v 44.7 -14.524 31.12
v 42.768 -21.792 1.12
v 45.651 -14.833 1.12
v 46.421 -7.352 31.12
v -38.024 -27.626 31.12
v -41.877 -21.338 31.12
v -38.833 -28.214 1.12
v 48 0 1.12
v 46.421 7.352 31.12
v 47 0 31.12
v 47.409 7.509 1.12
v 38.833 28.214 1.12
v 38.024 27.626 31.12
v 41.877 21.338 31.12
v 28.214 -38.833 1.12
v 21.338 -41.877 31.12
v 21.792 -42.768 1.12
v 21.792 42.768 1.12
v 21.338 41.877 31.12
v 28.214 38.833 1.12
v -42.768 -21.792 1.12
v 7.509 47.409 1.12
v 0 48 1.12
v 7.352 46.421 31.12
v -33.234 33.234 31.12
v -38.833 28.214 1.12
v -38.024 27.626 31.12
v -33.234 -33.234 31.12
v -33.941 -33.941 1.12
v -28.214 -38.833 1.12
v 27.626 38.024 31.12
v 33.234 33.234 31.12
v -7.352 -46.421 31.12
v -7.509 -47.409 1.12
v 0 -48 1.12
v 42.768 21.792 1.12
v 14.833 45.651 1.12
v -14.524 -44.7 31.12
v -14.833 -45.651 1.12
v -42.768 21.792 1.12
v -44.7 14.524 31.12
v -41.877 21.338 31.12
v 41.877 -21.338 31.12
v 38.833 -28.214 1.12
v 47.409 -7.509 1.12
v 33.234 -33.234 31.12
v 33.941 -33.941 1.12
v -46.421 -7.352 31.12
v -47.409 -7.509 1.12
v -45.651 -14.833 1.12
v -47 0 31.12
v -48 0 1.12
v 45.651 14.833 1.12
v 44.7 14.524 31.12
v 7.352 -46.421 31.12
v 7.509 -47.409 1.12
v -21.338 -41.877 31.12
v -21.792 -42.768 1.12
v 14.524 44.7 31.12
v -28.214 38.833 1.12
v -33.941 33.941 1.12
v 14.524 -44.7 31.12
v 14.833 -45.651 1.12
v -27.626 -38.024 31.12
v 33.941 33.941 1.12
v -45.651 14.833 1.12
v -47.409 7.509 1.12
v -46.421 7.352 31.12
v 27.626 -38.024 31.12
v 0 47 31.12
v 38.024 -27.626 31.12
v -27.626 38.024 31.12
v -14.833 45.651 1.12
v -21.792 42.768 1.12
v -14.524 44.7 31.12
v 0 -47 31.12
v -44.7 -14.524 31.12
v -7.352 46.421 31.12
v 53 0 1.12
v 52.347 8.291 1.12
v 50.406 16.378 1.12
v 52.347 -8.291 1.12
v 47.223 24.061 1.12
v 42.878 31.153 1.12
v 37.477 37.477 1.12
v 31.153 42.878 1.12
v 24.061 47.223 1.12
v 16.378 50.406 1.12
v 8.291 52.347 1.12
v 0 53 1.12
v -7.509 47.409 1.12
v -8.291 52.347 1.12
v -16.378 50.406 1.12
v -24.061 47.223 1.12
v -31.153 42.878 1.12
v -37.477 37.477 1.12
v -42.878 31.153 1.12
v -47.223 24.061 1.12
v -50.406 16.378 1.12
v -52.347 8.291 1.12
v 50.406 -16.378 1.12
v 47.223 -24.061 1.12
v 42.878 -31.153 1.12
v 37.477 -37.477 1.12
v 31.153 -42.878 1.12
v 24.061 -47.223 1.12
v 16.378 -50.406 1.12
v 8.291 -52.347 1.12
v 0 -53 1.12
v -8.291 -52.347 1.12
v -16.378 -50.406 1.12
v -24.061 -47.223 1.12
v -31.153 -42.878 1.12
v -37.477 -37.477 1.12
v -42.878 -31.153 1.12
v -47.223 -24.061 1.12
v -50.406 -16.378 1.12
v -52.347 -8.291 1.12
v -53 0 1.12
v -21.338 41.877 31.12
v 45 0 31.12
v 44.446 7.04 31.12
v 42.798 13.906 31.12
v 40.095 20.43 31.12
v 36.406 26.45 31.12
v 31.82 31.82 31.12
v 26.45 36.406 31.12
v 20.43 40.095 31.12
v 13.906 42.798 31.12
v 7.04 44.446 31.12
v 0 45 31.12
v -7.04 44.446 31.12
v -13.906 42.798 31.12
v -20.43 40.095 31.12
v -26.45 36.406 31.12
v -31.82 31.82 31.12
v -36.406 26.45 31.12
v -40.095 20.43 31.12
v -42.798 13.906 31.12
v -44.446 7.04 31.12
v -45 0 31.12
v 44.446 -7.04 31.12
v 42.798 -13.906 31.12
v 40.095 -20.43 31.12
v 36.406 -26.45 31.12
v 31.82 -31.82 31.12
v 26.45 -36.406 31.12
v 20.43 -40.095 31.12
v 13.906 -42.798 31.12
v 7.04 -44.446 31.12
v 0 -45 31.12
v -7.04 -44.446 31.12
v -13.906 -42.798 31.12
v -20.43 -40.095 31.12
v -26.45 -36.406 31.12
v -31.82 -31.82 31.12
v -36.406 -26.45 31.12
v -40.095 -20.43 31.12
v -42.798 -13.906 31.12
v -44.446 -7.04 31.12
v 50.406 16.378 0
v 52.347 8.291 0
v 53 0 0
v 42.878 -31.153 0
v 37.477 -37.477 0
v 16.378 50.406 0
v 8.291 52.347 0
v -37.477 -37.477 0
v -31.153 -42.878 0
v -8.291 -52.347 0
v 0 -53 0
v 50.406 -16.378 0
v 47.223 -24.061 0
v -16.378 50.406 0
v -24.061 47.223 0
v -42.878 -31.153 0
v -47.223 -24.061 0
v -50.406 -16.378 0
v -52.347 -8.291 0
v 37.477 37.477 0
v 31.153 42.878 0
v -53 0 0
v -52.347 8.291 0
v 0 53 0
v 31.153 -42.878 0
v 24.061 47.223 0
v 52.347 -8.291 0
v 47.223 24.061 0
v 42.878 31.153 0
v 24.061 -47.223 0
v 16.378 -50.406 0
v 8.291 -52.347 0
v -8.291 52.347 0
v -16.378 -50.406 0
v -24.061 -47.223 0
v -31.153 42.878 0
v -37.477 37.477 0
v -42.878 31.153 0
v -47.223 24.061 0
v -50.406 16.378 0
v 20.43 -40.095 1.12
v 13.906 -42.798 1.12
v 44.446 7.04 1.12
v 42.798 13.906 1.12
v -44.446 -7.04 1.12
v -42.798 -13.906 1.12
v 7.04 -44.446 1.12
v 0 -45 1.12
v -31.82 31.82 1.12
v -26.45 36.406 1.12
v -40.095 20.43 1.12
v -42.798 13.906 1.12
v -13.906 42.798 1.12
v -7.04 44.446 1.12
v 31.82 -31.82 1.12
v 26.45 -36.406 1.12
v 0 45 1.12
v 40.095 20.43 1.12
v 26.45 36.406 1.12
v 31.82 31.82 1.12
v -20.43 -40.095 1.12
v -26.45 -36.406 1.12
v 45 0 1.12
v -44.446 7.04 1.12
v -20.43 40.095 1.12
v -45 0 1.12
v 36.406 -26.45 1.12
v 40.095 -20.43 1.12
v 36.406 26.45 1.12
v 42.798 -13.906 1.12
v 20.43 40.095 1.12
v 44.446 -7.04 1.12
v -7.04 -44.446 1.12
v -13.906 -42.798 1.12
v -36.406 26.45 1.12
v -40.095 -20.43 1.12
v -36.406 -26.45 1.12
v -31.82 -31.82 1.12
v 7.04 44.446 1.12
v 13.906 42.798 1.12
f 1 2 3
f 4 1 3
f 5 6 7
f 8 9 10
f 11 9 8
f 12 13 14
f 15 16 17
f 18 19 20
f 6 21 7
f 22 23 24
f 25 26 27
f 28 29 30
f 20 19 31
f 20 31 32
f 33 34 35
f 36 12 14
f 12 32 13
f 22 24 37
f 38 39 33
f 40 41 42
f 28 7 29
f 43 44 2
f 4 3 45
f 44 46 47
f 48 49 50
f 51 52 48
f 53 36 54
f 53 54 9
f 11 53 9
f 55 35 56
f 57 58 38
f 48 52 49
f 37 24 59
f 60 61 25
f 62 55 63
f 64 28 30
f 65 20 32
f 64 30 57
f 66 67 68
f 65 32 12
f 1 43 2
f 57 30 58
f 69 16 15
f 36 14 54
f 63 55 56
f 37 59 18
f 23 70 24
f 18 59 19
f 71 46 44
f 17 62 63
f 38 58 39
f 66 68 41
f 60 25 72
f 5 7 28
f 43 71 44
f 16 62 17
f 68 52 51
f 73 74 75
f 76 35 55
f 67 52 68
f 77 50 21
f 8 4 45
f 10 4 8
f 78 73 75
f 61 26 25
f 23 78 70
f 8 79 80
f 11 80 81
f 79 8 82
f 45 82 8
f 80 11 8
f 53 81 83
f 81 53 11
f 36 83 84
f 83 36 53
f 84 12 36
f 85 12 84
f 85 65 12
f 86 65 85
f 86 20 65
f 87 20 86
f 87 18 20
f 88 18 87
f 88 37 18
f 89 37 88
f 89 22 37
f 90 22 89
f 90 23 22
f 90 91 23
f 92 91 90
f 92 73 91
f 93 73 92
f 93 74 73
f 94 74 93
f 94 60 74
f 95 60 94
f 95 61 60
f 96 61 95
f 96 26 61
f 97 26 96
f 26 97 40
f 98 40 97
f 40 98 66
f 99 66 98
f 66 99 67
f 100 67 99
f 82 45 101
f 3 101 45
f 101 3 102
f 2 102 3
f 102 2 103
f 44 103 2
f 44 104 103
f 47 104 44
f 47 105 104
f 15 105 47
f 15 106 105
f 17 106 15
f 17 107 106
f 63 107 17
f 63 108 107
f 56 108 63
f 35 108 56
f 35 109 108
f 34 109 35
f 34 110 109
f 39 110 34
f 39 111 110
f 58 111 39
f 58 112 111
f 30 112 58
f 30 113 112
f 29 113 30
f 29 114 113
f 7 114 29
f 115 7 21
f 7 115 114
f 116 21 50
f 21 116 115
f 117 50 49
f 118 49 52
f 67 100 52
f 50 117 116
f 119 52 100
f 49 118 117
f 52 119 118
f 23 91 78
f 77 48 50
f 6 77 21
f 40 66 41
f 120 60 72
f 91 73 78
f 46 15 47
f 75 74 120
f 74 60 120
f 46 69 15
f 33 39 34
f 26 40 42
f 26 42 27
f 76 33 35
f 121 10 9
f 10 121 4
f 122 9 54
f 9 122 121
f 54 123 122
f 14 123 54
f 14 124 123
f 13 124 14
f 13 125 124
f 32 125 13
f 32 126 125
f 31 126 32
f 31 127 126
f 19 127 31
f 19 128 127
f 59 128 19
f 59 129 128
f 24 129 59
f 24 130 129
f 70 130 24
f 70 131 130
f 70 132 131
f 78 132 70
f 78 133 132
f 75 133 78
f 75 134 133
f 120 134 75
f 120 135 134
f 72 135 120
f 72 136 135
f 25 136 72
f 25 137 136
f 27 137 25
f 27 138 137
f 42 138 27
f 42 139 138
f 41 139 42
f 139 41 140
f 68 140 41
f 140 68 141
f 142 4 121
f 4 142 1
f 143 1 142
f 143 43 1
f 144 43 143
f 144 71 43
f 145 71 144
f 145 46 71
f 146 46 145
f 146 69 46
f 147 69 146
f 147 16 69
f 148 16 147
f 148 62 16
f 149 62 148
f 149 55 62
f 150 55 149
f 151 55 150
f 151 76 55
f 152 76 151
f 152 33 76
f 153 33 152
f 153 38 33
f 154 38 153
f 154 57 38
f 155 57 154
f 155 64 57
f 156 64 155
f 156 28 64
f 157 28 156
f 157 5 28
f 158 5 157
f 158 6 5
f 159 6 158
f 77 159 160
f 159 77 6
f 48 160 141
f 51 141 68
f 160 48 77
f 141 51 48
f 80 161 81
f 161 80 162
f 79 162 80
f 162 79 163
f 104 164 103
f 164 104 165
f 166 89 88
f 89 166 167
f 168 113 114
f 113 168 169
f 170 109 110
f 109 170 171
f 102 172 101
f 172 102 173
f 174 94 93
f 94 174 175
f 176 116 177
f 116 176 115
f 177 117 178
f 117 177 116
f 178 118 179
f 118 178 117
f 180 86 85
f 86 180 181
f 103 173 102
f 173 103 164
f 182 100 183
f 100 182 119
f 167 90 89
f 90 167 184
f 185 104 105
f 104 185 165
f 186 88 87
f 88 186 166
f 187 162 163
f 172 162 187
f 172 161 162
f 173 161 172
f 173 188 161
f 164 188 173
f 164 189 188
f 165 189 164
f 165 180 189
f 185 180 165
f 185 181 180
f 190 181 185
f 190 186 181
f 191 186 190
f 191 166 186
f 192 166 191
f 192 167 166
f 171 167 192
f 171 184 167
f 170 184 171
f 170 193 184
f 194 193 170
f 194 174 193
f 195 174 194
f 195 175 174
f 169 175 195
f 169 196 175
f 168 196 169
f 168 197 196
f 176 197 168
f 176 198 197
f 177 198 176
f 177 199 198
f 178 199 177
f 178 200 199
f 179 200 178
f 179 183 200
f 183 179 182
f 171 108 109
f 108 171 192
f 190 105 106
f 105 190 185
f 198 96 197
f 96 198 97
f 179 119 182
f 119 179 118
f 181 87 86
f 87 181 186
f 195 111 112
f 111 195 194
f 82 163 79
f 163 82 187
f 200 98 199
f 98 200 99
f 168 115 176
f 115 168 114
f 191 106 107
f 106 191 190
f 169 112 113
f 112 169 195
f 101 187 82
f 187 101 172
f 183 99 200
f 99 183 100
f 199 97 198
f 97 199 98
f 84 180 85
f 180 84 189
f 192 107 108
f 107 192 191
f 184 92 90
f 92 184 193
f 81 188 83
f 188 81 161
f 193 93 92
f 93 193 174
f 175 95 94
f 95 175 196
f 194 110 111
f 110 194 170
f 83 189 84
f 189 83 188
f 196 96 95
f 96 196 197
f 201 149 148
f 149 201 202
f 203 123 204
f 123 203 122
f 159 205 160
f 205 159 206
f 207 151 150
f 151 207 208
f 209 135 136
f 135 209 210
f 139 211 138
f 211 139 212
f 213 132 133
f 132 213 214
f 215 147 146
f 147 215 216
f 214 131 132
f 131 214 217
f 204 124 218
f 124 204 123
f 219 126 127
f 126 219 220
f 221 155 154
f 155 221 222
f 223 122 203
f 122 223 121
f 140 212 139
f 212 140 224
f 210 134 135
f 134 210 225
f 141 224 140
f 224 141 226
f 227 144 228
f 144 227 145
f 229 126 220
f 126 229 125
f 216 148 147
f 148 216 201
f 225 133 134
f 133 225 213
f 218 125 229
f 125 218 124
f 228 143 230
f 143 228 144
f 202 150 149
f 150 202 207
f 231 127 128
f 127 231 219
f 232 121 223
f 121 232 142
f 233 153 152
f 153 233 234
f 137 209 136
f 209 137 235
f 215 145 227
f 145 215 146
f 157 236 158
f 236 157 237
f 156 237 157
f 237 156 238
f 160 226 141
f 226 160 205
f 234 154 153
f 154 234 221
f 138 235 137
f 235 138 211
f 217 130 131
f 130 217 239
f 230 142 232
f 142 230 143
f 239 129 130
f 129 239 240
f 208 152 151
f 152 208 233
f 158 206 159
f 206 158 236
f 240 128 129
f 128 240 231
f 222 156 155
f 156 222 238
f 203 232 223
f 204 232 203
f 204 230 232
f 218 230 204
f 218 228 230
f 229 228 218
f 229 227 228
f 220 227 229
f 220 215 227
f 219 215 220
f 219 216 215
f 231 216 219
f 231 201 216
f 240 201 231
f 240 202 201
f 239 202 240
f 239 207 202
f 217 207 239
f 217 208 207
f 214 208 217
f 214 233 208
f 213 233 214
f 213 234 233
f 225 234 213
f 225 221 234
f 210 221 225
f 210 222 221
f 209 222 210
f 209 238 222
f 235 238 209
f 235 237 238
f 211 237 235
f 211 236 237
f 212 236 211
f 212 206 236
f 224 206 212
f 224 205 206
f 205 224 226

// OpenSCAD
$fn=40;

LAYER_HEIGHT=1.12;

FROM=94;
TO=96;
HEIGHT=30;

LIP_INNER=TO+10;
LIP_OUTER=LIP_INNER + LAYER_HEIGHT;
LIP_HEIGHT=LAYER_HEIGHT*1.5;

difference() {
    union() {
        translate([0,0,LAYER_HEIGHT]) cylinder(h=HEIGHT, d1=TO, d2=FROM);
        linear_extrude(LAYER_HEIGHT) circle(d=LIP_INNER);
    }

   translate([0,0,LAYER_HEIGHT]) cylinder(h=HEIGHT * 2, d=90);
}

echo(version=version());
